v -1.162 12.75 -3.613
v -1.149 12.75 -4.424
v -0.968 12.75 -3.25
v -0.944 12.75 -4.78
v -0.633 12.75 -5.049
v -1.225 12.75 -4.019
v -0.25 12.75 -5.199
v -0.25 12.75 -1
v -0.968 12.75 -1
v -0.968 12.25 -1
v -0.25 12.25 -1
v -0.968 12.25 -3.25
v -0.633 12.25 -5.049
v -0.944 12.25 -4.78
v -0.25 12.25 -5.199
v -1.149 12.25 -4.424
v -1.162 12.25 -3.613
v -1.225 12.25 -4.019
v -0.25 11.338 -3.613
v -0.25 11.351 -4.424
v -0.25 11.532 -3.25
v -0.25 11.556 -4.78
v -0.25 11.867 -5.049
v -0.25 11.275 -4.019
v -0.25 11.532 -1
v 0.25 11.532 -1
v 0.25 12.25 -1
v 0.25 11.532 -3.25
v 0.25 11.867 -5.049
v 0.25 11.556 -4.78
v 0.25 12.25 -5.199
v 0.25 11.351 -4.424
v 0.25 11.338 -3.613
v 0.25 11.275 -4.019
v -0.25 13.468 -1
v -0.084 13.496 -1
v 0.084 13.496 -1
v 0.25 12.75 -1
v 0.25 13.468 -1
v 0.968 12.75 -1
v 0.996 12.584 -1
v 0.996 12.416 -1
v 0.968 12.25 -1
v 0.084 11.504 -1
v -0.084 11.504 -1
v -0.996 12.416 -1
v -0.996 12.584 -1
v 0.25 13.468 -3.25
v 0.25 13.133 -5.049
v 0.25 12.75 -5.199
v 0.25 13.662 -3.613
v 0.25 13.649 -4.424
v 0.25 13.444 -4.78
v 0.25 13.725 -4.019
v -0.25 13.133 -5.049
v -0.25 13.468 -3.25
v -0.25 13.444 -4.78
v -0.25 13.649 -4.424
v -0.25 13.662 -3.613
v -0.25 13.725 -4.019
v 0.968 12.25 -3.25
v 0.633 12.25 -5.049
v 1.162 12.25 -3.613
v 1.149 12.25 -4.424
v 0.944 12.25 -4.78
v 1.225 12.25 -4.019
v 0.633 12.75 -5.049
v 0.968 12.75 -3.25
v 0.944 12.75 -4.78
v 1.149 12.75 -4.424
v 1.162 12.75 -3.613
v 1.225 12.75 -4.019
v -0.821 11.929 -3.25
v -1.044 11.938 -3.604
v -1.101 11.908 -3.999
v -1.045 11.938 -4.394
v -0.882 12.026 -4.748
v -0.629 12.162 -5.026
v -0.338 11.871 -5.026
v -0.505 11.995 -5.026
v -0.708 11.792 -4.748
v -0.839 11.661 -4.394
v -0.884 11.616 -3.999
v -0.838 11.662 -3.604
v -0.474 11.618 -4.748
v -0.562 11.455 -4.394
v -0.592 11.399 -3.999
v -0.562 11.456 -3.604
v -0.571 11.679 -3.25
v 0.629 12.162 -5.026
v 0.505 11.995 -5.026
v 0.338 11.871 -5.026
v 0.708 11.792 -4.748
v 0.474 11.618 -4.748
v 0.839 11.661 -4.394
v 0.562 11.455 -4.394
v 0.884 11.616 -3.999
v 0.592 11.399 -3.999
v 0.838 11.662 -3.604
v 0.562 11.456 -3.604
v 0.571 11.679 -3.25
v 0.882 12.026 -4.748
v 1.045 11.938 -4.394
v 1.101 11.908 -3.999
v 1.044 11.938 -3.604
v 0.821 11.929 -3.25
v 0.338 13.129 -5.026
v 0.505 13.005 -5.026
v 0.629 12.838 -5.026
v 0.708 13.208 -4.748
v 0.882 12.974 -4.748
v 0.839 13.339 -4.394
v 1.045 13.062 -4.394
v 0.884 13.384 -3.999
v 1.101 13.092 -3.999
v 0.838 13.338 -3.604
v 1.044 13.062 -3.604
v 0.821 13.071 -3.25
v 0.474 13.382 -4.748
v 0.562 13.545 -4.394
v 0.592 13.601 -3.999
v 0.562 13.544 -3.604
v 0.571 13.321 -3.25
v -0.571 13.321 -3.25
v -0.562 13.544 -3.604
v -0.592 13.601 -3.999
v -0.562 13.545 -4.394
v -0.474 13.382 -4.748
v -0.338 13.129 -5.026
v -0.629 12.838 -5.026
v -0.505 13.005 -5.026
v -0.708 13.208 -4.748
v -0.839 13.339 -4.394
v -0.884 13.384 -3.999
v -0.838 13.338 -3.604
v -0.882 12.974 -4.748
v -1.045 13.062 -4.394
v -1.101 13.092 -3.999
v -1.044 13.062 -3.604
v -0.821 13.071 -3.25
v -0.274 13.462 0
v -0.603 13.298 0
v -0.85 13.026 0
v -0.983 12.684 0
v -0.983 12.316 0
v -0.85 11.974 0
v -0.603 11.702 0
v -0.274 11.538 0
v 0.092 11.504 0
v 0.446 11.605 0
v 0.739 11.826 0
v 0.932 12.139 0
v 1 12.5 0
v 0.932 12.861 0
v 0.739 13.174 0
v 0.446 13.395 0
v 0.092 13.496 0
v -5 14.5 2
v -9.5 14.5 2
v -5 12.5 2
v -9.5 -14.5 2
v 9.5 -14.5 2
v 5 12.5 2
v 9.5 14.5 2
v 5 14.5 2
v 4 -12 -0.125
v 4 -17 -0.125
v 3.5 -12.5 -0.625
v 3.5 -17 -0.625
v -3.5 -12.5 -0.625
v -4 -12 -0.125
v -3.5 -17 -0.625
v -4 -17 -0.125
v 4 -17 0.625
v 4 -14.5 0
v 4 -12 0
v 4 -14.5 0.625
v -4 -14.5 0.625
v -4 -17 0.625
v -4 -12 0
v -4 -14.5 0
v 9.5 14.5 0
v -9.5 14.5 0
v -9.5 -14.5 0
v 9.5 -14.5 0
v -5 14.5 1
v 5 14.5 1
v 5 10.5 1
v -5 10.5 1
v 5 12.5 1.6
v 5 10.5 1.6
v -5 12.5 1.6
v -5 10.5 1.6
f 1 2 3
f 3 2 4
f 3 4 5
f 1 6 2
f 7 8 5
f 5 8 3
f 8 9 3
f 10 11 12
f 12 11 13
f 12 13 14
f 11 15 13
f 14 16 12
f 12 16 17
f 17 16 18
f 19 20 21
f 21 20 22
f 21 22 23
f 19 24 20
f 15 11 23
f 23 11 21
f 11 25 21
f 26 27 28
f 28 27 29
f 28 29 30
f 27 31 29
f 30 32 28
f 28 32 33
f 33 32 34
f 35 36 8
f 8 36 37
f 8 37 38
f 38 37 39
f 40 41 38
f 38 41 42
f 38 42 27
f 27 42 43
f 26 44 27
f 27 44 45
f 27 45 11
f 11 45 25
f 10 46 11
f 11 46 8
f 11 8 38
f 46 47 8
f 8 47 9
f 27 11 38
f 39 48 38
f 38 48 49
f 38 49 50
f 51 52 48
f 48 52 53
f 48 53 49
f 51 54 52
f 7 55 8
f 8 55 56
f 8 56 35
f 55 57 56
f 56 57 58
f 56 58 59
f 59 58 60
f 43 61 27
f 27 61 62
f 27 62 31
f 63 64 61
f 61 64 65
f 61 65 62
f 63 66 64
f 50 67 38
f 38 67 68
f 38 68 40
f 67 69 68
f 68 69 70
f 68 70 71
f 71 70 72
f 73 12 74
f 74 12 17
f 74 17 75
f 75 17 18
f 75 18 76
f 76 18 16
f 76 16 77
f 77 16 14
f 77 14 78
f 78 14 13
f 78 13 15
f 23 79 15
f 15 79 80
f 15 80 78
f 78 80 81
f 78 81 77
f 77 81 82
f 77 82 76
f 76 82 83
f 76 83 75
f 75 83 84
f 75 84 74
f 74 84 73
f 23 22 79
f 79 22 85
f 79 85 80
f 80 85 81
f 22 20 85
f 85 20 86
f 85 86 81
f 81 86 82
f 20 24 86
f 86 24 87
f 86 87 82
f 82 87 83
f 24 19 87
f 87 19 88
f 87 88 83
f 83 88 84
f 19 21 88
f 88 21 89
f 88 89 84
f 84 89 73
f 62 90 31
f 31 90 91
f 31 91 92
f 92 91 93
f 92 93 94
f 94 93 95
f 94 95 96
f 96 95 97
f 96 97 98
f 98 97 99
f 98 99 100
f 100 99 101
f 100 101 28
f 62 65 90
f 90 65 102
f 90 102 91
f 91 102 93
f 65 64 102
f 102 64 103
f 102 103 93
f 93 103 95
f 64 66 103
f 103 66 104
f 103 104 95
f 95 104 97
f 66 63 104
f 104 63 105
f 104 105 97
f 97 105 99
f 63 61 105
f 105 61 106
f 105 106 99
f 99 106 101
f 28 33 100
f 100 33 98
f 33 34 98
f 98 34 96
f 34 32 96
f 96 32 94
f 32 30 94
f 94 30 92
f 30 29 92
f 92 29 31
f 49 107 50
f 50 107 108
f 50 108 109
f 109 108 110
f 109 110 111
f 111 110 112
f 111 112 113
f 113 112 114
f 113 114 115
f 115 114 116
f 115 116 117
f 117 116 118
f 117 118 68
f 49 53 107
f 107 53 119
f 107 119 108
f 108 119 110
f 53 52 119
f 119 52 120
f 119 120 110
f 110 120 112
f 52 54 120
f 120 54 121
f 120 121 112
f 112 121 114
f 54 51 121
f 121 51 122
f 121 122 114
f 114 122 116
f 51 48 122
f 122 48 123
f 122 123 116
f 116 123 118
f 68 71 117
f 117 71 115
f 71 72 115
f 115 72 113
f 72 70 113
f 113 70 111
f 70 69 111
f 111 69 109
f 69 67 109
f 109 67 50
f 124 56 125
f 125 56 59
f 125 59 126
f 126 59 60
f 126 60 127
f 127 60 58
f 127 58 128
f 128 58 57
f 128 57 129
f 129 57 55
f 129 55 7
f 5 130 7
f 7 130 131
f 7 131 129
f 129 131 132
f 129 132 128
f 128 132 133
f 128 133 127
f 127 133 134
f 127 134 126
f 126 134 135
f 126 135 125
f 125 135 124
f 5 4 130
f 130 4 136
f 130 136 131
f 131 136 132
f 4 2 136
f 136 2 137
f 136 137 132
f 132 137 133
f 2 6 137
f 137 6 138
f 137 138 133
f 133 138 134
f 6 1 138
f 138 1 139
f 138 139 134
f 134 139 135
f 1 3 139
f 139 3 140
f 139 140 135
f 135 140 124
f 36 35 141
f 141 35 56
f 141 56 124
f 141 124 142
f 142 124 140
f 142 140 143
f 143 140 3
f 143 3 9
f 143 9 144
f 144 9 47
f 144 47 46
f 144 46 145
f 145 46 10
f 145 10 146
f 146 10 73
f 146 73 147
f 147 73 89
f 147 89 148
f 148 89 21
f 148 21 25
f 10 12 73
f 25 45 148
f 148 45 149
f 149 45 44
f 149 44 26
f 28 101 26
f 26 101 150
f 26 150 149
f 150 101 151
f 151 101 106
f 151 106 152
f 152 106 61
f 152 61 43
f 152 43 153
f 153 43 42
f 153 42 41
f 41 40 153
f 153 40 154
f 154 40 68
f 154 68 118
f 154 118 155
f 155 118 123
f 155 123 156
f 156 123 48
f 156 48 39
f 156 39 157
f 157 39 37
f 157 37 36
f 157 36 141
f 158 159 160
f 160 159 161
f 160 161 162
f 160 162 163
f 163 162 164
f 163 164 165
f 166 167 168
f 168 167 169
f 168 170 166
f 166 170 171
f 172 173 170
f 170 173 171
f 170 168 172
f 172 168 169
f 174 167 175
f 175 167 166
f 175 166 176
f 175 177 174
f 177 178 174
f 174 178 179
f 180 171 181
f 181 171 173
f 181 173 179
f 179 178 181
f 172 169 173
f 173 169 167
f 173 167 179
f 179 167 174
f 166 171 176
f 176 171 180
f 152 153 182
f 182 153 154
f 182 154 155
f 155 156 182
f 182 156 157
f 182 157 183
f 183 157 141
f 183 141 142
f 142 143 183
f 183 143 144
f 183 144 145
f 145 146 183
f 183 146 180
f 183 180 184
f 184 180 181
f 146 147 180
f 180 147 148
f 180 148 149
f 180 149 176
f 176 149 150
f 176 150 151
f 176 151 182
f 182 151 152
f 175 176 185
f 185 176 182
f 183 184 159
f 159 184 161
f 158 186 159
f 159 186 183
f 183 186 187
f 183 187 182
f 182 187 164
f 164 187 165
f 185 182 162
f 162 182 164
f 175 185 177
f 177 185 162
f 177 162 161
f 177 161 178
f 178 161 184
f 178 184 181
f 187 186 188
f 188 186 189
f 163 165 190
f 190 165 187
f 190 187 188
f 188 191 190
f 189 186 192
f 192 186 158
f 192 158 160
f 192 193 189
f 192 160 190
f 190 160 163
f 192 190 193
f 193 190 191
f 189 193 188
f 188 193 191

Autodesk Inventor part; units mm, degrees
ref_plane "YZ Plane" through (0, 0, 0) normal (1, 0, 0) x (0, 1, 0)
ref_plane "XZ Plane" through (0, 0, 0) normal (0, 1, 0) x (-1, 0, 0)
ref_plane "XY Plane" through (0, 0, 0) normal (0, 0, 1) x (1, 0, 0)
sketch "Esquisse1" plane through (0, 0, 0) normal (0, 0, 1) x (1, 0, 0)
  line L0 (-9.5, 14.5) -> (9.5, 14.5)
  line L1 (9.5, 14.5) -> (9.5, -14.5)
  line L2 (9.5, -14.5) -> (-9.5, -14.5)
  line L3 (-9.5, -14.5) -> (-9.5, 14.5)
  line L4 (-13.3, 0) -> (13.3, 0) projected
  line L5 (0, -20.3) -> (0, 20.3) projected
  circle A0 centre (0, 12.5) radius 1
  point P0 (0, 0)
  dimension "d0" = 19
  dimension "d1" = 29
  dimension "d2" = 2
  dimension "d3" = 2
extrude "Extrusion1" add sketch "Esquisse1" along normal blind 2 contours L0 L5 A0 L4 L3 | L0 L1 L4 L5 A0 | L4 L5 L2 L3 | L4 L1 L2 L5
sketch "Esquisse2" plane through (0, 0, 0) normal (0, 0, -1) x (-1, 0, 0)
  line L0 (-4, -12) -> (4, -12)
  line L1 (4, -12) -> (4, -17)
  line L2 (4, -17) -> (-4, -17)
  line L3 (-4, -17) -> (-4, -12)
  line L4 (0, -23.3) -> (0, 20.8) projected
  line L5 (9.5, -14.5) -> (-9.5, -14.5) projected
  point P0 (0, 0)
  dimension "d6" = 8
  dimension "d7" = 5
  dimension "d8" = 2.5
extrude "Extrusion2" add sketch "Esquisse2" along normal mid plane 1.25
chamfer "Chanfrein1" distance 0.5 angle 45 3 edges at (0, -12, -0.625) (4, -14.5, -0.625) (-4, -14.5, -0.625)
extrude "Extrusion3" add sketch "Esquisse1" against normal blind 4 contours A0 L5 | L5 A0
sketch "Esquisse3" plane through (0, 12.5, -4) normal (0, 0, -1) x (-1, 0, 0)
  arc A0 (0, -1.25) -> (0, 1.25) centre (0, 0) ccw
  line L0 (0, 1.25) -> (0, -1.25)
  line L1 (0.25, 1.3454) -> (0.25, -1.2696)
  line L2 (-0.25, 1.3454) -> (-0.25, -1.2696)
  line L3 (-0.25, 1.3454) -> (0.25, 1.3454)
  line L4 (0.25, -1.2696) -> (-0.25, -1.2696)
  line L5 (-0.9682, 0.25) -> (0.9682, 0.25)
  circle A1 centre (0, 0) radius 1 projected
  line L6 (-0.9015, -0.25) -> (1.035, -0.25)
  circle A2 centre (0, 0) radius 1 projected
  line L7 (-0.9682, 0.25) -> (-1.0579, 0.25)
  line L8 (-1.0579, -0.25) -> (-0.9015, -0.25)
  line L9 (1.035, 0.25) -> (0.9682, 0.25)
  line L10 (1.035, 0.25) -> (1.2927, 0.25)
  line L11 (1.2927, 0.25) -> (1.2927, -0.25)
  line L12 (1.2927, -0.25) -> (1.035, -0.25)
  line L13 (-1.0579, 0.25) -> (-1.4678, 0.25)
  line L14 (-1.4678, 0.25) -> (-1.4678, -0.25)
  line L15 (-1.4678, -0.25) -> (-1.0579, -0.25)
  point P0 (0, -12.5)
  point P1 (0, 0)
  point P2 (0.25, 0.25)
  point P3 (-0.25, 0.25)
  point P4 (-0.25, -0.25)
  point P5 (0.25, -0.25)
  point P6 (0, 1.2247)
  point P7 (0, -1.2247)
  point P8 (1.2247, 0.25)
  point P9 (0.25, 1.2247)
  point P10 (1.2247, -0.25)
  point P11 (0.25, -1.2247)
  point P12 (0, -0.25)
  point P13 (0, 0.25)
  dimension "d16" = 1.25
  dimension "d17" = 0
  dimension "d18" = 0
  dimension "d19" = 13.75
  dimension "d21" = 0.25
  dimension "d22" = 0.25
  dimension "d56" = 1.0427
  dimension "d57" = 2.7604
  dimension "d58" = 0.5
  dimension "d59" = 1.0954
  dimension "d60" = 1.5196
  dimension "d61" = 0.2577
  dimension "d62" = 0.2577
  dimension "d63" = 1.0427
  dimension "d64" = 1.0427
  dimension "d65" = 1.0954
  dimension "d66" = 1.0427
  dimension "d67" = 0.5
  dimension "d68" = 1.0427
  dimension "d69" = 0
  dimension "d70" = 1.2927
  dimension "d71" = 0.9747
  dimension "d72" = 1.2927
  dimension "d73" = 1.4747
  dimension "d74" = 1.5427
  dimension "d75" = 0
  dimension "d76" = 1.5427
  dimension "d77" = 0.5
  dimension "d78" = 2.3506
  dimension "d79" = 2.3506
revolve "Révolution1" add sketch "Esquisse3" angle 360 about axis through (0, 13.75, -4) along (0, -1, 0) contours L0 A1 L1 A0 | L1 A1 L6 L12 A0 | L0 L6 L1 A1 | L12 L6 A1 L9 L10 A0 | L1 L6 A1 | L0 L5 L1 L6 | L10 L9 A1 L1 A0 | L1 L5 A1 L6 | L0 A1 L1 L5 | L1 A1 L0 A0 | L1 A1 L5
extrude "Extrusion6" cut sketch "Esquisse3" along normal blind 4 and the other way blind 3 contours L0 A1 L1 A0 | A0 L1 L4 L2 A1 L0 | A1 L2 L6 L0 | L0 L6 L1 A1 | L12 L6 A1 L9 L10 A0 | A0 L10 L11 L12 | L6 L2 L5 L0 | L0 L5 L1 L6 | L1 L5 A1 L6 | L5 L2 A1 L0 | L0 A1 L1 L5 | L6 L8 A1 L5 L2 | L8 L15 L14 L13 L7 A1 | L1 A1 L0 A0 | A0 L0 A1 L2 L3 L1
sketch "Esquisse4" plane through (0, 12.5, 0) normal (0, 0, 1) x (1, 0, 0)
  circle A0 centre (0, 0) radius 1
  point P0 (0, -12.5)
extrude "Extrusion7" add sketch "Esquisse4" along normal blind 2
sketch "Esquisse5" plane through (-9.5, 14.5, 0) normal (0, 1, 0) x (1, 0, 0)
  line L0 (19, -2) -> (0, -2) projected
  line L1 (14.5, -2) -> (4.5, -2)
  line L2 (4.5, -2) -> (4.5, -1)
  line L3 (4.5, -1) -> (14.5, -1)
  line L4 (14.5, -1) -> (14.5, -2)
  line L5 (19, 0) -> (19, -2) projected
  point P0 (9.5, 0)
  point P1 (14.5, -1.5)
  dimension "d86" = 10
  dimension "d87" = 4.5
  dimension "d88" = 1
extrude "Extrusion8" cut sketch "Esquisse5" against normal blind 2
sketch "Esquisse6" plane through (-9.5, 12.5, 0) normal (0, 1, 0) x (1, 0, 0)
  line L0 (4.5, -2) -> (4.5, -1) projected
  line L1 (14.5, -1) -> (14.5, -2) projected
  line L2 (4.5, -1) -> (14.5, -1)
  line L3 (14.5, -1) -> (14.5, -1.6)
  line L4 (14.5, -1.6) -> (4.5, -1.6)
  line L5 (4.5, -1.6) -> (4.5, -1)
  point P0 (9.5, 0)
  dimension "d91" = 0.6
extrude "Extrusion9" cut sketch "Esquisse6" against normal blind 2
properties part number "trappe"
